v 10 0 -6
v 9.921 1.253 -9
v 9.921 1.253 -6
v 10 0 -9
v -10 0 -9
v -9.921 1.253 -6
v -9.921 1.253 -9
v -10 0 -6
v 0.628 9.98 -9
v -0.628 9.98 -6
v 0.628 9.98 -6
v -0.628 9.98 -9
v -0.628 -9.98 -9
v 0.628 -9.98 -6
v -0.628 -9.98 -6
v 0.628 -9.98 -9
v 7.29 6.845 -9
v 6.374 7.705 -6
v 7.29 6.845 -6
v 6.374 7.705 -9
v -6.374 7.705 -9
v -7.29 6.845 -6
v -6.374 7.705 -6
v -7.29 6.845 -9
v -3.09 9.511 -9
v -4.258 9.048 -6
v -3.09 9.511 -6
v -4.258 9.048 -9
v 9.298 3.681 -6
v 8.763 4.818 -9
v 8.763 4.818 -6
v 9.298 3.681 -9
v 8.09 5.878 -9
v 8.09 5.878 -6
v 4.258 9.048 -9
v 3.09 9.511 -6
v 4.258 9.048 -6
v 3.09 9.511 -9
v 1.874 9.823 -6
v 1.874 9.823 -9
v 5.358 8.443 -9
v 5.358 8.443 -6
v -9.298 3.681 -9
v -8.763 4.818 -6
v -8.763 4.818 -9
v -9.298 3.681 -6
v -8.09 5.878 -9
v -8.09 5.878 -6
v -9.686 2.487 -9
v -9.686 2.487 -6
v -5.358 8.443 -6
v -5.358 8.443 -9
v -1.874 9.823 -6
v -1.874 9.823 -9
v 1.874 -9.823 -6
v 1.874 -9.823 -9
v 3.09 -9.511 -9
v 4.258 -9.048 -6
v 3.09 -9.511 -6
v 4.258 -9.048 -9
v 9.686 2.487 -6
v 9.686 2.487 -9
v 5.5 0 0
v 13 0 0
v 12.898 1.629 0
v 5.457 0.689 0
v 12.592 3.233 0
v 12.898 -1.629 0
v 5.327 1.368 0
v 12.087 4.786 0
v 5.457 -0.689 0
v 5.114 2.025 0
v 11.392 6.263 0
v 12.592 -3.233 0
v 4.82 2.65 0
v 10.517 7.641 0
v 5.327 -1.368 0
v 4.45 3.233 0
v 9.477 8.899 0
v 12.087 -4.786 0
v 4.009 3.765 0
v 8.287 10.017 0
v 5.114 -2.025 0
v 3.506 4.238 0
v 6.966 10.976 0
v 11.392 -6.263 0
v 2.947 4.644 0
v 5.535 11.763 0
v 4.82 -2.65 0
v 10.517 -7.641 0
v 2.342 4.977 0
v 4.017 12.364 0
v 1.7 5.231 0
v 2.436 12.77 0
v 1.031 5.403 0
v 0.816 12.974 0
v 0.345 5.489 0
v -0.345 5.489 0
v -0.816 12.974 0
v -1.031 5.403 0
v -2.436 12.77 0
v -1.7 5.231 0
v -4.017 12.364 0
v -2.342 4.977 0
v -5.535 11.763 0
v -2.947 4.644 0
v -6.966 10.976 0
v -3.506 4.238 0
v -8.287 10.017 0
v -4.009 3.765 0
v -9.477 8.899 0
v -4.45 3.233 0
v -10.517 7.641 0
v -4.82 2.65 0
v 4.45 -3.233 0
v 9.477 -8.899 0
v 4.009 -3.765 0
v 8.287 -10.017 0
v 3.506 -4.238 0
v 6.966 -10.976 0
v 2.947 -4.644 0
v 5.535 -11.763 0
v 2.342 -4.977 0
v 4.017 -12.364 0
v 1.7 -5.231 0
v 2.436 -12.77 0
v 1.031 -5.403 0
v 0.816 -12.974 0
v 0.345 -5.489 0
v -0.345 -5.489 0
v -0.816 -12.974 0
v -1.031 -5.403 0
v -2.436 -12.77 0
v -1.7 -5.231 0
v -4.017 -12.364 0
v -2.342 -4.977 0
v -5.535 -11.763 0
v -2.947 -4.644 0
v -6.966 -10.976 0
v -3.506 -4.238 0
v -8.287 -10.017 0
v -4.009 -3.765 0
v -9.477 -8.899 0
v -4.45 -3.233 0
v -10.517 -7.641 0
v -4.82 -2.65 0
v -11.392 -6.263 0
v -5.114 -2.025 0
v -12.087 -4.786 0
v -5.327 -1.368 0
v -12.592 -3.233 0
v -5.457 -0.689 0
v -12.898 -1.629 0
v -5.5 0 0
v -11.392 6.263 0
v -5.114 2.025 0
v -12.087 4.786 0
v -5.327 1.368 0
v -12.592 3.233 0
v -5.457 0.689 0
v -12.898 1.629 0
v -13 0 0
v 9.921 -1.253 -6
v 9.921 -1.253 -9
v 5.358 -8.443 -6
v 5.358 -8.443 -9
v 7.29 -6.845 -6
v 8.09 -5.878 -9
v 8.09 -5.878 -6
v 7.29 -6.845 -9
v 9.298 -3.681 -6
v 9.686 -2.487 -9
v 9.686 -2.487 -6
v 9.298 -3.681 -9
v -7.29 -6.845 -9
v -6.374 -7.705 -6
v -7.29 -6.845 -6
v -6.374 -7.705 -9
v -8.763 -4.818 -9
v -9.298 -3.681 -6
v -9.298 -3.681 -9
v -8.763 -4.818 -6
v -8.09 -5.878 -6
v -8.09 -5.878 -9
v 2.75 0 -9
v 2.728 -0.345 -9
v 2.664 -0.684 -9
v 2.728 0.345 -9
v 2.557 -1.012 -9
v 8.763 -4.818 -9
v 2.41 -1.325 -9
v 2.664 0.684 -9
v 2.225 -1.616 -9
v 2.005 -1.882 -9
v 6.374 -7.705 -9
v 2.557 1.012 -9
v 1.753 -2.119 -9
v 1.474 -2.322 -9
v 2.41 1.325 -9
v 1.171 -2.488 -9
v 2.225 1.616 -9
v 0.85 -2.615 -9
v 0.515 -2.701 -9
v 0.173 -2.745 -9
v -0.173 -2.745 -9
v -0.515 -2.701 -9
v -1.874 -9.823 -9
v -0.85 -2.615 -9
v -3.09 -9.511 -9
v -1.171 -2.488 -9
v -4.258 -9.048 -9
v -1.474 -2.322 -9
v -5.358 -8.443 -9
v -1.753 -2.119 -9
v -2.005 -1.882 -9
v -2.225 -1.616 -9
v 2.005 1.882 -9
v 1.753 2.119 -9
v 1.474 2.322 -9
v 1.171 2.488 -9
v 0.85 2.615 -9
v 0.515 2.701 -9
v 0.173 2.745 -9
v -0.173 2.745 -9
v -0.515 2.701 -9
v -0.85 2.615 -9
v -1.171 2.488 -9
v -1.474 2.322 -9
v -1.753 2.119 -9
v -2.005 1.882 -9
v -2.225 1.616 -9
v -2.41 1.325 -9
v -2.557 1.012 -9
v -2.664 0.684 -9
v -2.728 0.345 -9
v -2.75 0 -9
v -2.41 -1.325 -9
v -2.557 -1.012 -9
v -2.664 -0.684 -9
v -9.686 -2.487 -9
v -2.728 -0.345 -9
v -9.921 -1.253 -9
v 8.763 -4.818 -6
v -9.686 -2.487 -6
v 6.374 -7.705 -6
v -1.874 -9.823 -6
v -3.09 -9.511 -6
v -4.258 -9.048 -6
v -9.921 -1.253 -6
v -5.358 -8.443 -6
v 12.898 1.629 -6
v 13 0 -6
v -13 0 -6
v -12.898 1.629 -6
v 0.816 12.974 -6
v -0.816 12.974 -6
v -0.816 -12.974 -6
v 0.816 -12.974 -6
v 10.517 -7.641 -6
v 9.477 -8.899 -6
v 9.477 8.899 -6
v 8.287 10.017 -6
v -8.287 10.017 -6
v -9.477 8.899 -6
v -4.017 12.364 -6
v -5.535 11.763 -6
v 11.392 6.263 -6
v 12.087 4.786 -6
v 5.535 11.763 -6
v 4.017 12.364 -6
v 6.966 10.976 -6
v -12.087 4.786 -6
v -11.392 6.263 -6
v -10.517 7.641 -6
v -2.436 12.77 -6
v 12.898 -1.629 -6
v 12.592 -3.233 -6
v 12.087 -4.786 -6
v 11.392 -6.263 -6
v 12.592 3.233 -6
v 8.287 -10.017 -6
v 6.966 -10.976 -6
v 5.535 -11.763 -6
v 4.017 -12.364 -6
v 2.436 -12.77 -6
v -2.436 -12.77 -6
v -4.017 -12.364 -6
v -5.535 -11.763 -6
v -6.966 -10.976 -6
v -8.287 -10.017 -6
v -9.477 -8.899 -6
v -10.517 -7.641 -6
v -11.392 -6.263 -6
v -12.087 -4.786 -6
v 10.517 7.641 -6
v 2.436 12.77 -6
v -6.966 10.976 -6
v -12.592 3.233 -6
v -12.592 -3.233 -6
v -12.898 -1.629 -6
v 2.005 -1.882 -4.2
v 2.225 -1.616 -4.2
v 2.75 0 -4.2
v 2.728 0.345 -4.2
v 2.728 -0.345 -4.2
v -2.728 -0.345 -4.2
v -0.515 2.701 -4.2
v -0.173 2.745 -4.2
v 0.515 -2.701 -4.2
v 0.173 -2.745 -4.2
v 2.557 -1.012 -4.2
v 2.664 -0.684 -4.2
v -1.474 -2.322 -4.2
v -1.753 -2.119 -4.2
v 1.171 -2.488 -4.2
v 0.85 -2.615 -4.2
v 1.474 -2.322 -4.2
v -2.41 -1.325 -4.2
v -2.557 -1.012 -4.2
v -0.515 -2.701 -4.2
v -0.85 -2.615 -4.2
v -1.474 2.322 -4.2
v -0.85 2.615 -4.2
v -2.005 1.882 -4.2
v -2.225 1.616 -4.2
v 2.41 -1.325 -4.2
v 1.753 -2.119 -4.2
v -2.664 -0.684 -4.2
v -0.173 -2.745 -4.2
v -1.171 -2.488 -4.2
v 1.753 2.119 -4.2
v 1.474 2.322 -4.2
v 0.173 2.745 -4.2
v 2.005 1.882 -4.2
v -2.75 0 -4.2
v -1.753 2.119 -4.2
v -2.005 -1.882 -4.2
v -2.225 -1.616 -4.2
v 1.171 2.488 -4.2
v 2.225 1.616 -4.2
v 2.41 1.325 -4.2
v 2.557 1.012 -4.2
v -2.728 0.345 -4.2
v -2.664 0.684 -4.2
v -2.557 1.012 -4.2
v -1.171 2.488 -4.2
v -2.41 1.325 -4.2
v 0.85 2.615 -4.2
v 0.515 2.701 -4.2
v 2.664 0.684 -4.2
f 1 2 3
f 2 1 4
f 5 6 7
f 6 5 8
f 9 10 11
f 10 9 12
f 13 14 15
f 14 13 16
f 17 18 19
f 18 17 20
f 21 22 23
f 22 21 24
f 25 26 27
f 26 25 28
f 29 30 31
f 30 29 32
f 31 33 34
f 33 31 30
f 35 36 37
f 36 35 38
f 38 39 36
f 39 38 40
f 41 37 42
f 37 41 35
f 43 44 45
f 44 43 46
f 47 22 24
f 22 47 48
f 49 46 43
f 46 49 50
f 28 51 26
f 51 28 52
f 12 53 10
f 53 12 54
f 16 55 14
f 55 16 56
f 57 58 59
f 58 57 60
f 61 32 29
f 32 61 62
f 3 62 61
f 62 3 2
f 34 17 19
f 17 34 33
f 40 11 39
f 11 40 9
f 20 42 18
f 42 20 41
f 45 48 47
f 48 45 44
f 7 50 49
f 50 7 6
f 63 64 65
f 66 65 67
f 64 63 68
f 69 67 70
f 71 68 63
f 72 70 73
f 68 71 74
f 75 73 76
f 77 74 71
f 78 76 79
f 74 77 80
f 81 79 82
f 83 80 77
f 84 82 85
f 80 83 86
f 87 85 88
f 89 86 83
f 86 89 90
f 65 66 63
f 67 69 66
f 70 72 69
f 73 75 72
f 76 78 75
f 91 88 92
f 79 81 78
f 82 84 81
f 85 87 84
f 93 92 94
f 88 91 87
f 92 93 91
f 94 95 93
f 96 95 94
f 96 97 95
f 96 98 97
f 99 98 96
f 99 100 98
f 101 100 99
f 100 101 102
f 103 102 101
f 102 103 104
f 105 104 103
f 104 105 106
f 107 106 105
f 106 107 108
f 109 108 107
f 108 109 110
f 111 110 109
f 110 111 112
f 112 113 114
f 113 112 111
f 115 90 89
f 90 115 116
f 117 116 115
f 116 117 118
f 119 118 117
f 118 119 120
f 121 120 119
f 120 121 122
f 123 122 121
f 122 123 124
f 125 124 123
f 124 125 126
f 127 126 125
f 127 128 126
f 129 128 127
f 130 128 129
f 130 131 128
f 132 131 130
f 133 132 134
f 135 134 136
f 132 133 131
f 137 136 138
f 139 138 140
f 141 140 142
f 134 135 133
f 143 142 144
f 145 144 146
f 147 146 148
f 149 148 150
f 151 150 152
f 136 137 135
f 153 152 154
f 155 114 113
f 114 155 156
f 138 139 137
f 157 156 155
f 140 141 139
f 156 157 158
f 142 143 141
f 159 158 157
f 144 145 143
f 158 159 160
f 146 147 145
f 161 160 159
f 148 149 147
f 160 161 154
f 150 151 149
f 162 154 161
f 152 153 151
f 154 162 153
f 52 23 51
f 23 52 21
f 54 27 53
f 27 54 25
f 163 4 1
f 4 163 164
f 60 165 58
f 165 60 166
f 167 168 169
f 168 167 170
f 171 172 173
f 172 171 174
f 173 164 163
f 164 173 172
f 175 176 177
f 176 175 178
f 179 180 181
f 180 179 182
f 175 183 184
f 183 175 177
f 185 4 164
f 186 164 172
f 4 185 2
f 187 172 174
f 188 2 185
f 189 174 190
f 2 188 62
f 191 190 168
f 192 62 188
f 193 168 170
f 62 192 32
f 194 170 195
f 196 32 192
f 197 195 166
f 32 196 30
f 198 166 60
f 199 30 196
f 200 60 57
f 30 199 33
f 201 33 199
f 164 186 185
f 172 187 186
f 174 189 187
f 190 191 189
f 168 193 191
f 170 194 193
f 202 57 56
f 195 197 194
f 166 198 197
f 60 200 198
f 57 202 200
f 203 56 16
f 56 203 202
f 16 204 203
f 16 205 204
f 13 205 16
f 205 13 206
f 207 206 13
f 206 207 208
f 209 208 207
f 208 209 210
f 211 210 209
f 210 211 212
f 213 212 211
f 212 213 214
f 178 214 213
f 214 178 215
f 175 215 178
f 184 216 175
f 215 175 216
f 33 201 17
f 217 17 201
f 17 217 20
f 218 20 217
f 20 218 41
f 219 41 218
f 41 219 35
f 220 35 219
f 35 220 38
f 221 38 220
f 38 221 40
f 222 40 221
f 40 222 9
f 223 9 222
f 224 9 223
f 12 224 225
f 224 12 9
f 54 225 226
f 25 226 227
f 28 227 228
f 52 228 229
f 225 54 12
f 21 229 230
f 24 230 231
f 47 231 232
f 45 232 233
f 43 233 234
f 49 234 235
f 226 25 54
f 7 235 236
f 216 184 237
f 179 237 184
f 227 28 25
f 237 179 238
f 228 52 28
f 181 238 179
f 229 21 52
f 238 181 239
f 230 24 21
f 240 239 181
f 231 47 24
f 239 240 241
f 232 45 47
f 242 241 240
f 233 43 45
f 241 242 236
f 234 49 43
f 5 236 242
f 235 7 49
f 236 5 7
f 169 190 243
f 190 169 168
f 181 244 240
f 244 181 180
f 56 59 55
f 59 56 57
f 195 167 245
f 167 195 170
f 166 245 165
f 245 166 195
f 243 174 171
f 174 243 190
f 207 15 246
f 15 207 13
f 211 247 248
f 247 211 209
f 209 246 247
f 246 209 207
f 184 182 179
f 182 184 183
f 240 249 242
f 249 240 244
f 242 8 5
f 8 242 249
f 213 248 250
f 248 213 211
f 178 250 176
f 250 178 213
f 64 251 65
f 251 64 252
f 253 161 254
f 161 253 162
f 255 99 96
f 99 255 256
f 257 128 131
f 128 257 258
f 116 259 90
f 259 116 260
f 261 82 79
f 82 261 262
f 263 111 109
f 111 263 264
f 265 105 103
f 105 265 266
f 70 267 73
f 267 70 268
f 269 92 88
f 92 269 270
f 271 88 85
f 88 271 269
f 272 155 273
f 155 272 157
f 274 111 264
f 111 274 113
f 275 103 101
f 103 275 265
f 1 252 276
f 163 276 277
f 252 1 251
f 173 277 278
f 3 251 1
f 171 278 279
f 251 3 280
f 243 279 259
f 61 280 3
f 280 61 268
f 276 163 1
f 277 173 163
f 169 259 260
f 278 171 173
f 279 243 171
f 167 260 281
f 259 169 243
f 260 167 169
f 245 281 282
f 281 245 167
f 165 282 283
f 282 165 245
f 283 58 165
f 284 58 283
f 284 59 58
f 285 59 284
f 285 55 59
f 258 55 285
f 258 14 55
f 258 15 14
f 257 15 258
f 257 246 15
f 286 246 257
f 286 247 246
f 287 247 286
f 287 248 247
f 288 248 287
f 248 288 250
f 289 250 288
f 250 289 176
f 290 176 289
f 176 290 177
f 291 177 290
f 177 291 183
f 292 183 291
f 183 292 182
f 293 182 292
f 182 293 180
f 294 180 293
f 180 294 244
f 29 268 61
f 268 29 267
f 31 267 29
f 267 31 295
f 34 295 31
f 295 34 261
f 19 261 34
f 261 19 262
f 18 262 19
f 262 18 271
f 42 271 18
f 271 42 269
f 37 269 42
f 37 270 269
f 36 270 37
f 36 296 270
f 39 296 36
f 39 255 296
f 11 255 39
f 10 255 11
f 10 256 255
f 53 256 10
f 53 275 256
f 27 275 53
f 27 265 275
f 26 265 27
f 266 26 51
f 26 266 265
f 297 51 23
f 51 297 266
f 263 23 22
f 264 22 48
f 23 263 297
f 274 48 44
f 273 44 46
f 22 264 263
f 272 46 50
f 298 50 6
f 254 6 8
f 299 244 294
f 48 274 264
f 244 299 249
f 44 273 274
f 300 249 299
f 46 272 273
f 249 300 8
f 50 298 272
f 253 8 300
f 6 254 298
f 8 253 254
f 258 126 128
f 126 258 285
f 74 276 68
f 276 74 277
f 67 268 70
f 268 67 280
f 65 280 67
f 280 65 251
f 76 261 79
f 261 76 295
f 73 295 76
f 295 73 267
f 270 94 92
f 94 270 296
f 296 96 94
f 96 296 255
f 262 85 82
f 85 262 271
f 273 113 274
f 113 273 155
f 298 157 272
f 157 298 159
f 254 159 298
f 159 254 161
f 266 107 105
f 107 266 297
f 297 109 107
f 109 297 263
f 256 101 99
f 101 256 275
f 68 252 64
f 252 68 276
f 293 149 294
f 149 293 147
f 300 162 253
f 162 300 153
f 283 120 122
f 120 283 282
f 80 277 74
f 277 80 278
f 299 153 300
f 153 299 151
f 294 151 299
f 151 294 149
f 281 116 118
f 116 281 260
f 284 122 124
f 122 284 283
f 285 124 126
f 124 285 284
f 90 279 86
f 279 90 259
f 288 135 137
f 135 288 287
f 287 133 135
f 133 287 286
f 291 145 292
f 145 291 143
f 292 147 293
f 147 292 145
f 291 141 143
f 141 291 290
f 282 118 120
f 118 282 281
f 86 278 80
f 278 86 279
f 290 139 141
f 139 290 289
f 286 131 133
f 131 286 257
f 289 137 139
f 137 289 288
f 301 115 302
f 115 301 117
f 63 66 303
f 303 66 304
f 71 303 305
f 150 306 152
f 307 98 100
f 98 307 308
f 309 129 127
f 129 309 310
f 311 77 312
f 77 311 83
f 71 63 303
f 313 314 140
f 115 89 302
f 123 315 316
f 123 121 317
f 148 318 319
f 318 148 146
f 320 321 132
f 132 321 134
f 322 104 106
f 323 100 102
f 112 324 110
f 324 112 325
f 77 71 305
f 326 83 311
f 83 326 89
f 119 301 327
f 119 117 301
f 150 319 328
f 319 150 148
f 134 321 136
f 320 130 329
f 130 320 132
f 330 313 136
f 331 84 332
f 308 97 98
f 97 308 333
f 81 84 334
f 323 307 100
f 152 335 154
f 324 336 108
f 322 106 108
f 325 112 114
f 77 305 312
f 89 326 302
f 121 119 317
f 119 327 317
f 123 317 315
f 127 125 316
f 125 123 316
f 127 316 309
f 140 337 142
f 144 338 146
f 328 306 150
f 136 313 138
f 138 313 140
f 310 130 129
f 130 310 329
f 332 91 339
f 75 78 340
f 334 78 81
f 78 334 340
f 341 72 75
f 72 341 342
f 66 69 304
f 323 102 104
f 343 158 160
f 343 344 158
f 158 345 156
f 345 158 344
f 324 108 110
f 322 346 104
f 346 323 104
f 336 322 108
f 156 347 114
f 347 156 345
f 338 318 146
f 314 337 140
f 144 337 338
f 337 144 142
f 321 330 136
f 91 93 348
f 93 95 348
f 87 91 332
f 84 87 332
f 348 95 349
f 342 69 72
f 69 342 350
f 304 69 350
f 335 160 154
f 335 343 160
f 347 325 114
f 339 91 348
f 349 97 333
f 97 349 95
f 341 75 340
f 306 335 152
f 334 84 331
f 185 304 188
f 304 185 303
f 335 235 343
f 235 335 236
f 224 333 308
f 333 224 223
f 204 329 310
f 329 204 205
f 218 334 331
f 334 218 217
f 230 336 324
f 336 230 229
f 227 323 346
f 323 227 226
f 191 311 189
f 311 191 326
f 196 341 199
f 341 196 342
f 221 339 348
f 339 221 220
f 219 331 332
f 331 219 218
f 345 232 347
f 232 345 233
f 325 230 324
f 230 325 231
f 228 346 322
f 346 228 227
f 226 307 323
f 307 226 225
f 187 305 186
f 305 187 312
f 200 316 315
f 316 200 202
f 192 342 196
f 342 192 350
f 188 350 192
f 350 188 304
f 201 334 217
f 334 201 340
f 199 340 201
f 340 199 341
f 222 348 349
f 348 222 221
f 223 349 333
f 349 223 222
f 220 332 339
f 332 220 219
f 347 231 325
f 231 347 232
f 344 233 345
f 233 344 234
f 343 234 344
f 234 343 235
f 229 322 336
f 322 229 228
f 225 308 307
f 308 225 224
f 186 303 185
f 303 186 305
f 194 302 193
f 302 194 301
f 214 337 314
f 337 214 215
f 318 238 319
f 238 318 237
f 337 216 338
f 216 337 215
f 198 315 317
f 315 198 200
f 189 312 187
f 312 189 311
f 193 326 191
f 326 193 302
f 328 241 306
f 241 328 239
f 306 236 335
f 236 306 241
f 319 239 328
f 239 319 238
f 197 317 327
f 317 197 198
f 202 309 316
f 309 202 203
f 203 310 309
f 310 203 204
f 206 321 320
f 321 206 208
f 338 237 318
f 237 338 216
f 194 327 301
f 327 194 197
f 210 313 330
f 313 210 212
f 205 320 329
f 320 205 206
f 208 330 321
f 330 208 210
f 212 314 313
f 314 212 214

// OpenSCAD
$fn = 50;


difference() {
	union() {
		translate(v = [0, 0, -9.0000000000]) {
			cylinder(h = 9, r = 10.0000000000);
		}
		translate(v = [0, 0, -6.0000000000]) {
			cylinder(h = 6, r = 13.0000000000);
		}
	}
	union() {
		translate(v = [0, 0, 0]) {
			rotate(a = [0, 0, 0]) {
				difference() {
					union() {
						#translate(v = [0, 0, -9.0000000000]) {
							cylinder(h = 9, r = 2.2500000000);
						}
						#translate(v = [0, 0, -4.2000000000]) {
							cylinder(h = 4.2000000000, r = 10.0000000000, r1 = 2.7500000000, r2 = 5.5000000000);
						}
						#translate(v = [0, 0, -9.0000000000]) {
							cylinder(h = 9, r = 2.7500000000);
						}
						#translate(v = [0, 0, -9.0000000000]) {
							cylinder(h = 9, r = 2.2500000000);
						}
					}
					union();
				}
			}
		}
	}
}
